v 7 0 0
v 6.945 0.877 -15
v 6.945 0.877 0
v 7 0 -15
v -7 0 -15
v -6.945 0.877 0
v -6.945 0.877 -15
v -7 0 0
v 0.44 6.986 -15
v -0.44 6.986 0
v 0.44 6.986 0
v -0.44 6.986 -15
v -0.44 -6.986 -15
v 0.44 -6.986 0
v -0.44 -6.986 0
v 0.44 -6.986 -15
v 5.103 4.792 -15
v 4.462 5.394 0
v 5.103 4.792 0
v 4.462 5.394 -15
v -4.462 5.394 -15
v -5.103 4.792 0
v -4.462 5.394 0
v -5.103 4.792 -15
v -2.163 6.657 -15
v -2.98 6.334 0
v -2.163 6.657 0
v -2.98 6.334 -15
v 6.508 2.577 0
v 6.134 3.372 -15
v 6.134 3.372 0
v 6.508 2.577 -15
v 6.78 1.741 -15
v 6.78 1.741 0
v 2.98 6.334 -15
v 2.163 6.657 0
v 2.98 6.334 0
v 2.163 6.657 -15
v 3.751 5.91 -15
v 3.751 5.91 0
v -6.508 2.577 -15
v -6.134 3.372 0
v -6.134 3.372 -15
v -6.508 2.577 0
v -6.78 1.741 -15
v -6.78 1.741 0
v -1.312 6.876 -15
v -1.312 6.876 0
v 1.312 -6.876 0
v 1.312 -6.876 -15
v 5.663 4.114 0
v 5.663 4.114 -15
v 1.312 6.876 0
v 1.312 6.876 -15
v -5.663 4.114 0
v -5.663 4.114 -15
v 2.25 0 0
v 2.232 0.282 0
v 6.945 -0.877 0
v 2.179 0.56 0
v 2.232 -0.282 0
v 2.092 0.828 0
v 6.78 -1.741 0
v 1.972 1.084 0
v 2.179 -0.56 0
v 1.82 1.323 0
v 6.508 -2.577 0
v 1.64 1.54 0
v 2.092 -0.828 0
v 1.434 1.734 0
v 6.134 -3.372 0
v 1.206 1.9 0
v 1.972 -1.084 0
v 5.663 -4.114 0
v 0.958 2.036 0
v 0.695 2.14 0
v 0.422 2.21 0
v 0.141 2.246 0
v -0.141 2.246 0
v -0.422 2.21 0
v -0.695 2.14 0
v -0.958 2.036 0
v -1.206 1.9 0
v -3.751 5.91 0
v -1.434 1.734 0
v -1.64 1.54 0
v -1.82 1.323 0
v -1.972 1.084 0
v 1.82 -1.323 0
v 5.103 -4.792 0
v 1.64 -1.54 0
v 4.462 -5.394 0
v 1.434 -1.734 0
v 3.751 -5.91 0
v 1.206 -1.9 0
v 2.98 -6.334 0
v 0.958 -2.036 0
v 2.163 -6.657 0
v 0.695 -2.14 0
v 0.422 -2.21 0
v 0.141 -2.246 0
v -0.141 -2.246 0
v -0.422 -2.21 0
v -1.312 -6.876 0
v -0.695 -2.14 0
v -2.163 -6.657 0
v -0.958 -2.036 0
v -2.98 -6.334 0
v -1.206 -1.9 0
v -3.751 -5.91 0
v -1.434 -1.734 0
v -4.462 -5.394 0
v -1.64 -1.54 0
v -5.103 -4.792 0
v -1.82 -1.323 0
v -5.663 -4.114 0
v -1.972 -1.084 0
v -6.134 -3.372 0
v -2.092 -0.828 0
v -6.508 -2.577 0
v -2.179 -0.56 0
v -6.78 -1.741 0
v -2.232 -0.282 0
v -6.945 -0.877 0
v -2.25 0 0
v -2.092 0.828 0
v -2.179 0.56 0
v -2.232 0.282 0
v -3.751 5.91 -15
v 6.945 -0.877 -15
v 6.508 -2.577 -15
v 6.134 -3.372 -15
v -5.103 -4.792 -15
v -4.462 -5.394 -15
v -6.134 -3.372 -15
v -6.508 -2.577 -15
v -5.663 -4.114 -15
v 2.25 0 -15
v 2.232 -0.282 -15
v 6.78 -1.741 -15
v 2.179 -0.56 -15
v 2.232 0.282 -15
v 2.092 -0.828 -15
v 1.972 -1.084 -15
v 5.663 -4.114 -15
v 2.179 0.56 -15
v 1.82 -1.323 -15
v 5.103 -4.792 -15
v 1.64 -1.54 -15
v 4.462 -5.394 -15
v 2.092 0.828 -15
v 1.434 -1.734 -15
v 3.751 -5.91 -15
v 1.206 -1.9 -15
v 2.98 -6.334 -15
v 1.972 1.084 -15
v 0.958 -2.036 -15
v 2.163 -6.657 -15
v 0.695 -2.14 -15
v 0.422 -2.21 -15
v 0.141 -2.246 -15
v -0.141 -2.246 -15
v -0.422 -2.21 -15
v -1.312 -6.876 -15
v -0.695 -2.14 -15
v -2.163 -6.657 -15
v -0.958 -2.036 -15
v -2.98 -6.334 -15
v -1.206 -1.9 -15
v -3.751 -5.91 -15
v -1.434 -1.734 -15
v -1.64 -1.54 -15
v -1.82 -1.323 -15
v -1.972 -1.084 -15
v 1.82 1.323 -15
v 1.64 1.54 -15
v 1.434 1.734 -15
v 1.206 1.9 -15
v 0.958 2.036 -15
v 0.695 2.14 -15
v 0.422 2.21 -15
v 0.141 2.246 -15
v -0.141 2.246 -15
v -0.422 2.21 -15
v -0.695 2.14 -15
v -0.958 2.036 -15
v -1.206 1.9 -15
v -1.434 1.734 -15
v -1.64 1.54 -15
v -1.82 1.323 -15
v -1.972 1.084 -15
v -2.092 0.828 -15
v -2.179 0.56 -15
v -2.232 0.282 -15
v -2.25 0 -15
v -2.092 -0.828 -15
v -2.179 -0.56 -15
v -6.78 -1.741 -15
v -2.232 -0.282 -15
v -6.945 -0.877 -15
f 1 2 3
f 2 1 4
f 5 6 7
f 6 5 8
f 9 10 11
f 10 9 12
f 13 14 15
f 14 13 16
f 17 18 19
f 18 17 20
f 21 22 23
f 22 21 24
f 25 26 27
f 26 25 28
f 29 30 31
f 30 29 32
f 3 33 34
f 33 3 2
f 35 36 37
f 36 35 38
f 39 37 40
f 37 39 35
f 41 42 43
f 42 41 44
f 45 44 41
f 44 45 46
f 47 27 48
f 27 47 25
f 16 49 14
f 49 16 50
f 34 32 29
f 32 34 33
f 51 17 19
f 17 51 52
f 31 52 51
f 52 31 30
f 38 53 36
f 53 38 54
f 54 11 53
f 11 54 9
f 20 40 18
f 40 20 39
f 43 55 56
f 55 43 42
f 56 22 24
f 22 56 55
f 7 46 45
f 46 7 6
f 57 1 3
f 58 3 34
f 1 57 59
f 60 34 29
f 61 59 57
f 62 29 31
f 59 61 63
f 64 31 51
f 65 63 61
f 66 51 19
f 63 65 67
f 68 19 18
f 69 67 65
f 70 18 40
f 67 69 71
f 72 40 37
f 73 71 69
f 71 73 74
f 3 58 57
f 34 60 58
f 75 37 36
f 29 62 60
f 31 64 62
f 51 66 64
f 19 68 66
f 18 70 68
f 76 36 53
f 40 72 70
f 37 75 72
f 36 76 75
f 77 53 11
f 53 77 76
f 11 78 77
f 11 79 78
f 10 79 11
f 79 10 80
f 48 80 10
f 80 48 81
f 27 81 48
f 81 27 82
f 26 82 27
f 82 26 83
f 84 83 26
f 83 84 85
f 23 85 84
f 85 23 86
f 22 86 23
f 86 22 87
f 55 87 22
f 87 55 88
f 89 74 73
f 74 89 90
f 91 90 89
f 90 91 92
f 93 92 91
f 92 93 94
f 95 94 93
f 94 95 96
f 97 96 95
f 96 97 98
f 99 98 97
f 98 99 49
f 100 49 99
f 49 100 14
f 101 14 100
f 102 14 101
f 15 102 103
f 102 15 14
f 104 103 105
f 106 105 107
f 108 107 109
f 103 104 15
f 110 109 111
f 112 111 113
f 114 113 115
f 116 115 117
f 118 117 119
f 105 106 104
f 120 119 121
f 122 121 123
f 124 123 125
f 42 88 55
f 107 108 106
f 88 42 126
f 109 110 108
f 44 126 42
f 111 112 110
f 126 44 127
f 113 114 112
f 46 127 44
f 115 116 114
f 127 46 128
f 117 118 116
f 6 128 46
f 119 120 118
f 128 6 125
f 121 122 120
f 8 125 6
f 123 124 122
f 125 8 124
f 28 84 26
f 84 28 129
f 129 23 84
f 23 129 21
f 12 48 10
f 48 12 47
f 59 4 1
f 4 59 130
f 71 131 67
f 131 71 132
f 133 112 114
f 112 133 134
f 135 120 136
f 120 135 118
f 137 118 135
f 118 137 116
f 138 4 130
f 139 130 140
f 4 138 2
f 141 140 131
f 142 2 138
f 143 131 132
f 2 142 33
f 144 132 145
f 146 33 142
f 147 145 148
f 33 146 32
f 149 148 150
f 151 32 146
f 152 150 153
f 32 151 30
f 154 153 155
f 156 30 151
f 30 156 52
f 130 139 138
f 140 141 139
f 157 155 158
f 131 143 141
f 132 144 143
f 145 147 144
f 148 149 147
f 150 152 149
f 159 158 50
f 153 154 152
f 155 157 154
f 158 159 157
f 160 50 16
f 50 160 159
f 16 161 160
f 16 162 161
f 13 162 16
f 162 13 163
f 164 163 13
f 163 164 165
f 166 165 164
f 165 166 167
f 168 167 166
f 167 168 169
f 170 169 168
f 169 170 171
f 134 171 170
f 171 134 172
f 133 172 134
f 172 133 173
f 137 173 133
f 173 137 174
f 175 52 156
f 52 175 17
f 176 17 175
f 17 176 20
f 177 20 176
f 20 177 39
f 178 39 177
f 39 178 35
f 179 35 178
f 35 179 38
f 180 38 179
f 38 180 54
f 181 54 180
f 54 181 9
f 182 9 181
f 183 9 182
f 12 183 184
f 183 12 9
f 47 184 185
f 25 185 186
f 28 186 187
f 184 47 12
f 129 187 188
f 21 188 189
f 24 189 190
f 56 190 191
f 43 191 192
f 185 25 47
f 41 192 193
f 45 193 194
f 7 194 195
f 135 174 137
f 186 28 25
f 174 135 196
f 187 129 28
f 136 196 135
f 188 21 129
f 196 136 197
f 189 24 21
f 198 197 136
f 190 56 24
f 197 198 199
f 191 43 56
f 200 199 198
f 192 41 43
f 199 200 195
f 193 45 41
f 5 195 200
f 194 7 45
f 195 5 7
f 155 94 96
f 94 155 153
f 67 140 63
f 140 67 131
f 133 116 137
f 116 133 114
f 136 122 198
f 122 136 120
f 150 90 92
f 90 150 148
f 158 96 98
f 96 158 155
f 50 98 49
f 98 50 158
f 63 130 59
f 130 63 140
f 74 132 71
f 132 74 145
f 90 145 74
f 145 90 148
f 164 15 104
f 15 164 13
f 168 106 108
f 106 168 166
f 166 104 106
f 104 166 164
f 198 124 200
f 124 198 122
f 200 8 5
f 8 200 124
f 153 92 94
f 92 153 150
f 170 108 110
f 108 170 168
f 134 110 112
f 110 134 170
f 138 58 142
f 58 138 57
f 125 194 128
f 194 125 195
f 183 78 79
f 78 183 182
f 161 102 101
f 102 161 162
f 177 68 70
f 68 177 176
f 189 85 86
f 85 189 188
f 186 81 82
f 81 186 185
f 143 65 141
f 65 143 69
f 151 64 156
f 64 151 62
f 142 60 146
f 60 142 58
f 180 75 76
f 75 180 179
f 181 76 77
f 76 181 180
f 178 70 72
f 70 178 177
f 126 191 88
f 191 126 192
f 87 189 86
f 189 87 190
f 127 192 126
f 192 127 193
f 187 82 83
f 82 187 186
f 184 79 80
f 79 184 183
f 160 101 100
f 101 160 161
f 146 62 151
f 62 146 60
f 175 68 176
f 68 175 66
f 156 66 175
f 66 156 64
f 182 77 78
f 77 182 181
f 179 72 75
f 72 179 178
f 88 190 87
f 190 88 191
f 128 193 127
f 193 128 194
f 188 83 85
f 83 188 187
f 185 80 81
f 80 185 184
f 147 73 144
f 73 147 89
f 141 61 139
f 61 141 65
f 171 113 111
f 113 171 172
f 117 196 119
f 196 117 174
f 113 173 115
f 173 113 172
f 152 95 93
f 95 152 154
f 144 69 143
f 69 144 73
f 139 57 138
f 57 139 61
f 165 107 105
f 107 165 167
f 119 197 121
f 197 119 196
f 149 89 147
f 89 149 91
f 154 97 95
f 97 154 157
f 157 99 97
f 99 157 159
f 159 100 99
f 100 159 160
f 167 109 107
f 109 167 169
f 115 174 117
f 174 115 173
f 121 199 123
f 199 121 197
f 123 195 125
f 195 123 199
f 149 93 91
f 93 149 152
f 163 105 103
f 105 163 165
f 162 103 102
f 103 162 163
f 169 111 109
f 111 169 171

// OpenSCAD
$fn = 50;


difference() {
	union() {
		translate(v = [0, 0, -15.0000000000]) {
			cylinder(h = 15, r = 7.0000000000);
		}
		cylinder(h = 0, r = 17.0000000000);
	}
	union() {
		#translate(v = [0, 0, -15]) {
			cylinder(h = 15, r = 2.2500000000);
		}
	}
}
